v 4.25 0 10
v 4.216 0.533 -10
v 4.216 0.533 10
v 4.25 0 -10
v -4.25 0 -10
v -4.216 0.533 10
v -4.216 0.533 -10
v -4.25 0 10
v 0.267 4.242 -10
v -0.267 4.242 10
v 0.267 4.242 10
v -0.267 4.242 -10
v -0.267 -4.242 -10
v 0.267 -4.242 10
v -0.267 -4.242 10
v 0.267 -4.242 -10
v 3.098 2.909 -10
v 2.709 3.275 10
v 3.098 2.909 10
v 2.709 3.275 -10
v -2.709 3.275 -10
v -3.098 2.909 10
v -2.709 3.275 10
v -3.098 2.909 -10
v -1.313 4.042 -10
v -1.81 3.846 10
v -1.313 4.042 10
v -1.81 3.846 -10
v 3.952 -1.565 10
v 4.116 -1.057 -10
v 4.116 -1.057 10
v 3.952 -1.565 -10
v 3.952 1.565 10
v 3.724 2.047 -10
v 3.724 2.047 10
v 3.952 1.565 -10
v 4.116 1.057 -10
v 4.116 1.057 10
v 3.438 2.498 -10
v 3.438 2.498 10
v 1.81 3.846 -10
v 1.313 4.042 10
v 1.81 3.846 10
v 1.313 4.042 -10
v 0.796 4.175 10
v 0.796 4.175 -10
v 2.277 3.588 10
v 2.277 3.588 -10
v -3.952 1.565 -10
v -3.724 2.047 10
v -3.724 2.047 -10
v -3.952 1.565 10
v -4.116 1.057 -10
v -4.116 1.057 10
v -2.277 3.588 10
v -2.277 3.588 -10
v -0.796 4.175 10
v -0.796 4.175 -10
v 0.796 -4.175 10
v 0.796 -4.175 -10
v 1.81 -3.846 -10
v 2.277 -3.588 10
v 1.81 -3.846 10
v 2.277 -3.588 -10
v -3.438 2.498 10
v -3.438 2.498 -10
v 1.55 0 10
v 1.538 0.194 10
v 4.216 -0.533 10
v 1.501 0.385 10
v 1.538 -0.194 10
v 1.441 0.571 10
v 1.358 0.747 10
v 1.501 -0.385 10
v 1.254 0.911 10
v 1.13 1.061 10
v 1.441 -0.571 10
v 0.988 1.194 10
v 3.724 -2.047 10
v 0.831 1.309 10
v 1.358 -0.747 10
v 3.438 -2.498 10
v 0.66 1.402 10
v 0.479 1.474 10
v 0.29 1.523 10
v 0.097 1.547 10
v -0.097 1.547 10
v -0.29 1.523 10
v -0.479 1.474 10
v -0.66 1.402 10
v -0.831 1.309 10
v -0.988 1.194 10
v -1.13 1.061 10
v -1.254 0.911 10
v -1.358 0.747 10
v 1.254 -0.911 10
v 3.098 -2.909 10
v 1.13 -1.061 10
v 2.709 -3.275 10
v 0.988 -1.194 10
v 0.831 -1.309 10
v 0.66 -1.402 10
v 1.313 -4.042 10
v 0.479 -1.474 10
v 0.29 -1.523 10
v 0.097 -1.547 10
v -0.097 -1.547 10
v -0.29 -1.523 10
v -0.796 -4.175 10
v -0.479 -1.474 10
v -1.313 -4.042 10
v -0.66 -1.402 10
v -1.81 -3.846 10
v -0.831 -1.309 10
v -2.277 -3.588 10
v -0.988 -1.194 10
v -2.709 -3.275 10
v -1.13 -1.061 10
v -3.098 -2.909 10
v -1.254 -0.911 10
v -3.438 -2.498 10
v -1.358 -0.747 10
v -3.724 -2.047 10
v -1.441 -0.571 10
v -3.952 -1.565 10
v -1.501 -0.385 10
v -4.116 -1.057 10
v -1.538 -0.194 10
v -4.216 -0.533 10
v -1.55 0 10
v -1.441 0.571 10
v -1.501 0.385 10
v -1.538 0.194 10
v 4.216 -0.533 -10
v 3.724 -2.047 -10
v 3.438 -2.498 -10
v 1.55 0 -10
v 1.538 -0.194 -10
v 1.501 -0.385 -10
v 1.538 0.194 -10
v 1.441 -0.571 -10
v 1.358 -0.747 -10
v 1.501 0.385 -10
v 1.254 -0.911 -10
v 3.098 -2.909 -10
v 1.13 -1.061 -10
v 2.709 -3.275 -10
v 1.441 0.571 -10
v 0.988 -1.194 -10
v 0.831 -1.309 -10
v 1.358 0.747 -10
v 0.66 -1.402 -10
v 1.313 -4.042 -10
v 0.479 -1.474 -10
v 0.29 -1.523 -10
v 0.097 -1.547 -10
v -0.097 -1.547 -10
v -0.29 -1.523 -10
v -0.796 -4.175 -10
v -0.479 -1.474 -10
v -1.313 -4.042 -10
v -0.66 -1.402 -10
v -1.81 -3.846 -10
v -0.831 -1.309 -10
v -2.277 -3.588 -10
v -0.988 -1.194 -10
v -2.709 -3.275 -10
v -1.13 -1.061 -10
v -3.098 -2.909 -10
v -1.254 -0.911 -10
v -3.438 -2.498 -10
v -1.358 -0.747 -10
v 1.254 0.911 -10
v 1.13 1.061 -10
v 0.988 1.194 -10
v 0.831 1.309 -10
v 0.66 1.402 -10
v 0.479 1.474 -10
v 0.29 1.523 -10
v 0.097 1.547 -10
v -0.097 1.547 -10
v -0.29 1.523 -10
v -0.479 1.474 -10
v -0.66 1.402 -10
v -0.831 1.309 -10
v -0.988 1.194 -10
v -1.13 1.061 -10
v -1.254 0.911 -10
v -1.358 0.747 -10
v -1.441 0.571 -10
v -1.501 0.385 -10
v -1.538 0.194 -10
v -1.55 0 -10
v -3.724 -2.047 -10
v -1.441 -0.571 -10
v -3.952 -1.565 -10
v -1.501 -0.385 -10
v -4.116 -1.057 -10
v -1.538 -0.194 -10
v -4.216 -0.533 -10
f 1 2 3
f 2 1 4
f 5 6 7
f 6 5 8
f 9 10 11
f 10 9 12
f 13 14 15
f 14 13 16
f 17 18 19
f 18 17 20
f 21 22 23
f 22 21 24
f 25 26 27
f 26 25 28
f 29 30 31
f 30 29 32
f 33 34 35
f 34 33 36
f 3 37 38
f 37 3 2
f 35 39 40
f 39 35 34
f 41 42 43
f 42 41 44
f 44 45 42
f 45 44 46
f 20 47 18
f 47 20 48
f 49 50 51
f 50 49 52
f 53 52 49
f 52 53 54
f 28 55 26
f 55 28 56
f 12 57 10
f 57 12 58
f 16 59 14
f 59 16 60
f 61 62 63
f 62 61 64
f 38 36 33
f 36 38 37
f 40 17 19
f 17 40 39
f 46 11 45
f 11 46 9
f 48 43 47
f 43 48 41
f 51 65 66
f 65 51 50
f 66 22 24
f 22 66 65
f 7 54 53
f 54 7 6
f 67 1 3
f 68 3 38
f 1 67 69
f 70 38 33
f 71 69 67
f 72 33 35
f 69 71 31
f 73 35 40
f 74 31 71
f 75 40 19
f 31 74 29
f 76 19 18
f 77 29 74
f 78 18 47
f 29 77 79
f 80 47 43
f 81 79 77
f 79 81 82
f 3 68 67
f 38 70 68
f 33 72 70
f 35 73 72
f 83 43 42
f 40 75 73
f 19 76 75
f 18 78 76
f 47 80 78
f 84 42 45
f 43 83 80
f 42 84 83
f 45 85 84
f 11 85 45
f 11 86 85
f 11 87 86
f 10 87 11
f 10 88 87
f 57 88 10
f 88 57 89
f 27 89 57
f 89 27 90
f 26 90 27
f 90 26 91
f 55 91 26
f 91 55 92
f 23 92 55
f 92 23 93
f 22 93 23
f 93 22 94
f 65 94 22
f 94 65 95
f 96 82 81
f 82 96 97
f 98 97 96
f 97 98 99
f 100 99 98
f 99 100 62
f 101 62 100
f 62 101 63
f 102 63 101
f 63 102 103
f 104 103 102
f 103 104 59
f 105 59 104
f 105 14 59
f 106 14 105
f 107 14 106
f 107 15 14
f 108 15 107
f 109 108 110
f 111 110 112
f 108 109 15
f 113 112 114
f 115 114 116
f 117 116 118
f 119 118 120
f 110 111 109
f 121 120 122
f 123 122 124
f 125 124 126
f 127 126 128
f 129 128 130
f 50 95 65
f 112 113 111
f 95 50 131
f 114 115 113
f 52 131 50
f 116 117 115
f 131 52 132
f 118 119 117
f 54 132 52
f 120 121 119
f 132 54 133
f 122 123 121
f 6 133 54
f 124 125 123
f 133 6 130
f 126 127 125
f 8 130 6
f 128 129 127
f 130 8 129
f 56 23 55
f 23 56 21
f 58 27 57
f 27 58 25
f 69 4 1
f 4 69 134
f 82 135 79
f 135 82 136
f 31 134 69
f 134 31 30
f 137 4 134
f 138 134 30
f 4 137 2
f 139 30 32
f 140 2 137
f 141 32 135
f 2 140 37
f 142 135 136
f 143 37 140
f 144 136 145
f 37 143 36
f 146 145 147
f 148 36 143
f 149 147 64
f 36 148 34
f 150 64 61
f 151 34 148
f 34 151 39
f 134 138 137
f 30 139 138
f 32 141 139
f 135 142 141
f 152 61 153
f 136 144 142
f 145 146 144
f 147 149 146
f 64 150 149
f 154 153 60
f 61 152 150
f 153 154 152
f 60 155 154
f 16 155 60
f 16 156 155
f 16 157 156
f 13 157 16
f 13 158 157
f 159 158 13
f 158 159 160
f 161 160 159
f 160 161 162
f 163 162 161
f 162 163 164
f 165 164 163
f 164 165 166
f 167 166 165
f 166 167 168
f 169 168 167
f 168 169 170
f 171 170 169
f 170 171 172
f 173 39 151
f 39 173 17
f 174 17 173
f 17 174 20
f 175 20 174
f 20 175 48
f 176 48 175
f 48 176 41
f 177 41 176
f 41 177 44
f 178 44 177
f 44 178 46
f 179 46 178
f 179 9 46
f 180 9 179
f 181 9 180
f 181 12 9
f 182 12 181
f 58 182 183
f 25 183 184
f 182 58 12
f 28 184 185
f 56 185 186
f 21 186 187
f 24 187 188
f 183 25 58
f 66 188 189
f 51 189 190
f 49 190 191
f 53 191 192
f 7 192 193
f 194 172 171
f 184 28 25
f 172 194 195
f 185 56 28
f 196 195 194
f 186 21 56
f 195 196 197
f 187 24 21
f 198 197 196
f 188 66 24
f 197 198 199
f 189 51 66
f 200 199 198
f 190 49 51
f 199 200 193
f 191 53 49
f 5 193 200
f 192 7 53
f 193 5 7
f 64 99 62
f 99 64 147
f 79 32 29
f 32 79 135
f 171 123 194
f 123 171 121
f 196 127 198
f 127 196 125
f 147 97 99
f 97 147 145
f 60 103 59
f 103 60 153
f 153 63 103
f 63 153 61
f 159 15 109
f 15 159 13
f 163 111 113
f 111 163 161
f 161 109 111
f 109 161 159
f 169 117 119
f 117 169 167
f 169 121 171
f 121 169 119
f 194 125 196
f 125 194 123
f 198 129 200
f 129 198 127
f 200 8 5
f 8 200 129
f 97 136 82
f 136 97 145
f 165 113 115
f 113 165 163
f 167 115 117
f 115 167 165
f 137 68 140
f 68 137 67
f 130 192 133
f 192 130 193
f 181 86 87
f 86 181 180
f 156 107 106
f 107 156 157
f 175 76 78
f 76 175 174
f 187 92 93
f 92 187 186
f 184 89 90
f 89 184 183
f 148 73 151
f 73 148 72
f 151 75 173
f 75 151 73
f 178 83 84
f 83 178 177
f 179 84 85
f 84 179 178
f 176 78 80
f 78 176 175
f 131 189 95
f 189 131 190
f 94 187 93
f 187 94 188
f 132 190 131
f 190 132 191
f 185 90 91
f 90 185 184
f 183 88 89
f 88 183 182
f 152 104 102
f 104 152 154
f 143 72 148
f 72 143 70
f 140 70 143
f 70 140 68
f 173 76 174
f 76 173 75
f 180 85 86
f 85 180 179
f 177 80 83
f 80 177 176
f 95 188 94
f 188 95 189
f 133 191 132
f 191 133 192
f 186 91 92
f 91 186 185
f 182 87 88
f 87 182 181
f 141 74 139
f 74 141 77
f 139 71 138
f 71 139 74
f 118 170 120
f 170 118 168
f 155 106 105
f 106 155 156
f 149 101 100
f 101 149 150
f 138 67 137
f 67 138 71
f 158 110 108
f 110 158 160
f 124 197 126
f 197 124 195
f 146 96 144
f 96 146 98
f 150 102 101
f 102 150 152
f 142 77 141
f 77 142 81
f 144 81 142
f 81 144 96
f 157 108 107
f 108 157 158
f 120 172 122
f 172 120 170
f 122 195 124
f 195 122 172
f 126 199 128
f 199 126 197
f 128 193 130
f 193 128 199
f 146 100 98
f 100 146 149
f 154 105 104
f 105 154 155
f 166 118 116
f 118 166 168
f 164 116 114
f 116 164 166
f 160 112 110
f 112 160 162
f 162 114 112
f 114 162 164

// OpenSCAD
$fn = 50;


difference() {
	union() {
		translate(v = [0, 0, -10.0000000000]) {
			cylinder(h = 20, r = 4.2500000000);
		}
	}
	union() {
		translate(v = [0, 0, -100.0000000000]) {
			cylinder(h = 200, r = 1.5500000000);
		}
	}
}
